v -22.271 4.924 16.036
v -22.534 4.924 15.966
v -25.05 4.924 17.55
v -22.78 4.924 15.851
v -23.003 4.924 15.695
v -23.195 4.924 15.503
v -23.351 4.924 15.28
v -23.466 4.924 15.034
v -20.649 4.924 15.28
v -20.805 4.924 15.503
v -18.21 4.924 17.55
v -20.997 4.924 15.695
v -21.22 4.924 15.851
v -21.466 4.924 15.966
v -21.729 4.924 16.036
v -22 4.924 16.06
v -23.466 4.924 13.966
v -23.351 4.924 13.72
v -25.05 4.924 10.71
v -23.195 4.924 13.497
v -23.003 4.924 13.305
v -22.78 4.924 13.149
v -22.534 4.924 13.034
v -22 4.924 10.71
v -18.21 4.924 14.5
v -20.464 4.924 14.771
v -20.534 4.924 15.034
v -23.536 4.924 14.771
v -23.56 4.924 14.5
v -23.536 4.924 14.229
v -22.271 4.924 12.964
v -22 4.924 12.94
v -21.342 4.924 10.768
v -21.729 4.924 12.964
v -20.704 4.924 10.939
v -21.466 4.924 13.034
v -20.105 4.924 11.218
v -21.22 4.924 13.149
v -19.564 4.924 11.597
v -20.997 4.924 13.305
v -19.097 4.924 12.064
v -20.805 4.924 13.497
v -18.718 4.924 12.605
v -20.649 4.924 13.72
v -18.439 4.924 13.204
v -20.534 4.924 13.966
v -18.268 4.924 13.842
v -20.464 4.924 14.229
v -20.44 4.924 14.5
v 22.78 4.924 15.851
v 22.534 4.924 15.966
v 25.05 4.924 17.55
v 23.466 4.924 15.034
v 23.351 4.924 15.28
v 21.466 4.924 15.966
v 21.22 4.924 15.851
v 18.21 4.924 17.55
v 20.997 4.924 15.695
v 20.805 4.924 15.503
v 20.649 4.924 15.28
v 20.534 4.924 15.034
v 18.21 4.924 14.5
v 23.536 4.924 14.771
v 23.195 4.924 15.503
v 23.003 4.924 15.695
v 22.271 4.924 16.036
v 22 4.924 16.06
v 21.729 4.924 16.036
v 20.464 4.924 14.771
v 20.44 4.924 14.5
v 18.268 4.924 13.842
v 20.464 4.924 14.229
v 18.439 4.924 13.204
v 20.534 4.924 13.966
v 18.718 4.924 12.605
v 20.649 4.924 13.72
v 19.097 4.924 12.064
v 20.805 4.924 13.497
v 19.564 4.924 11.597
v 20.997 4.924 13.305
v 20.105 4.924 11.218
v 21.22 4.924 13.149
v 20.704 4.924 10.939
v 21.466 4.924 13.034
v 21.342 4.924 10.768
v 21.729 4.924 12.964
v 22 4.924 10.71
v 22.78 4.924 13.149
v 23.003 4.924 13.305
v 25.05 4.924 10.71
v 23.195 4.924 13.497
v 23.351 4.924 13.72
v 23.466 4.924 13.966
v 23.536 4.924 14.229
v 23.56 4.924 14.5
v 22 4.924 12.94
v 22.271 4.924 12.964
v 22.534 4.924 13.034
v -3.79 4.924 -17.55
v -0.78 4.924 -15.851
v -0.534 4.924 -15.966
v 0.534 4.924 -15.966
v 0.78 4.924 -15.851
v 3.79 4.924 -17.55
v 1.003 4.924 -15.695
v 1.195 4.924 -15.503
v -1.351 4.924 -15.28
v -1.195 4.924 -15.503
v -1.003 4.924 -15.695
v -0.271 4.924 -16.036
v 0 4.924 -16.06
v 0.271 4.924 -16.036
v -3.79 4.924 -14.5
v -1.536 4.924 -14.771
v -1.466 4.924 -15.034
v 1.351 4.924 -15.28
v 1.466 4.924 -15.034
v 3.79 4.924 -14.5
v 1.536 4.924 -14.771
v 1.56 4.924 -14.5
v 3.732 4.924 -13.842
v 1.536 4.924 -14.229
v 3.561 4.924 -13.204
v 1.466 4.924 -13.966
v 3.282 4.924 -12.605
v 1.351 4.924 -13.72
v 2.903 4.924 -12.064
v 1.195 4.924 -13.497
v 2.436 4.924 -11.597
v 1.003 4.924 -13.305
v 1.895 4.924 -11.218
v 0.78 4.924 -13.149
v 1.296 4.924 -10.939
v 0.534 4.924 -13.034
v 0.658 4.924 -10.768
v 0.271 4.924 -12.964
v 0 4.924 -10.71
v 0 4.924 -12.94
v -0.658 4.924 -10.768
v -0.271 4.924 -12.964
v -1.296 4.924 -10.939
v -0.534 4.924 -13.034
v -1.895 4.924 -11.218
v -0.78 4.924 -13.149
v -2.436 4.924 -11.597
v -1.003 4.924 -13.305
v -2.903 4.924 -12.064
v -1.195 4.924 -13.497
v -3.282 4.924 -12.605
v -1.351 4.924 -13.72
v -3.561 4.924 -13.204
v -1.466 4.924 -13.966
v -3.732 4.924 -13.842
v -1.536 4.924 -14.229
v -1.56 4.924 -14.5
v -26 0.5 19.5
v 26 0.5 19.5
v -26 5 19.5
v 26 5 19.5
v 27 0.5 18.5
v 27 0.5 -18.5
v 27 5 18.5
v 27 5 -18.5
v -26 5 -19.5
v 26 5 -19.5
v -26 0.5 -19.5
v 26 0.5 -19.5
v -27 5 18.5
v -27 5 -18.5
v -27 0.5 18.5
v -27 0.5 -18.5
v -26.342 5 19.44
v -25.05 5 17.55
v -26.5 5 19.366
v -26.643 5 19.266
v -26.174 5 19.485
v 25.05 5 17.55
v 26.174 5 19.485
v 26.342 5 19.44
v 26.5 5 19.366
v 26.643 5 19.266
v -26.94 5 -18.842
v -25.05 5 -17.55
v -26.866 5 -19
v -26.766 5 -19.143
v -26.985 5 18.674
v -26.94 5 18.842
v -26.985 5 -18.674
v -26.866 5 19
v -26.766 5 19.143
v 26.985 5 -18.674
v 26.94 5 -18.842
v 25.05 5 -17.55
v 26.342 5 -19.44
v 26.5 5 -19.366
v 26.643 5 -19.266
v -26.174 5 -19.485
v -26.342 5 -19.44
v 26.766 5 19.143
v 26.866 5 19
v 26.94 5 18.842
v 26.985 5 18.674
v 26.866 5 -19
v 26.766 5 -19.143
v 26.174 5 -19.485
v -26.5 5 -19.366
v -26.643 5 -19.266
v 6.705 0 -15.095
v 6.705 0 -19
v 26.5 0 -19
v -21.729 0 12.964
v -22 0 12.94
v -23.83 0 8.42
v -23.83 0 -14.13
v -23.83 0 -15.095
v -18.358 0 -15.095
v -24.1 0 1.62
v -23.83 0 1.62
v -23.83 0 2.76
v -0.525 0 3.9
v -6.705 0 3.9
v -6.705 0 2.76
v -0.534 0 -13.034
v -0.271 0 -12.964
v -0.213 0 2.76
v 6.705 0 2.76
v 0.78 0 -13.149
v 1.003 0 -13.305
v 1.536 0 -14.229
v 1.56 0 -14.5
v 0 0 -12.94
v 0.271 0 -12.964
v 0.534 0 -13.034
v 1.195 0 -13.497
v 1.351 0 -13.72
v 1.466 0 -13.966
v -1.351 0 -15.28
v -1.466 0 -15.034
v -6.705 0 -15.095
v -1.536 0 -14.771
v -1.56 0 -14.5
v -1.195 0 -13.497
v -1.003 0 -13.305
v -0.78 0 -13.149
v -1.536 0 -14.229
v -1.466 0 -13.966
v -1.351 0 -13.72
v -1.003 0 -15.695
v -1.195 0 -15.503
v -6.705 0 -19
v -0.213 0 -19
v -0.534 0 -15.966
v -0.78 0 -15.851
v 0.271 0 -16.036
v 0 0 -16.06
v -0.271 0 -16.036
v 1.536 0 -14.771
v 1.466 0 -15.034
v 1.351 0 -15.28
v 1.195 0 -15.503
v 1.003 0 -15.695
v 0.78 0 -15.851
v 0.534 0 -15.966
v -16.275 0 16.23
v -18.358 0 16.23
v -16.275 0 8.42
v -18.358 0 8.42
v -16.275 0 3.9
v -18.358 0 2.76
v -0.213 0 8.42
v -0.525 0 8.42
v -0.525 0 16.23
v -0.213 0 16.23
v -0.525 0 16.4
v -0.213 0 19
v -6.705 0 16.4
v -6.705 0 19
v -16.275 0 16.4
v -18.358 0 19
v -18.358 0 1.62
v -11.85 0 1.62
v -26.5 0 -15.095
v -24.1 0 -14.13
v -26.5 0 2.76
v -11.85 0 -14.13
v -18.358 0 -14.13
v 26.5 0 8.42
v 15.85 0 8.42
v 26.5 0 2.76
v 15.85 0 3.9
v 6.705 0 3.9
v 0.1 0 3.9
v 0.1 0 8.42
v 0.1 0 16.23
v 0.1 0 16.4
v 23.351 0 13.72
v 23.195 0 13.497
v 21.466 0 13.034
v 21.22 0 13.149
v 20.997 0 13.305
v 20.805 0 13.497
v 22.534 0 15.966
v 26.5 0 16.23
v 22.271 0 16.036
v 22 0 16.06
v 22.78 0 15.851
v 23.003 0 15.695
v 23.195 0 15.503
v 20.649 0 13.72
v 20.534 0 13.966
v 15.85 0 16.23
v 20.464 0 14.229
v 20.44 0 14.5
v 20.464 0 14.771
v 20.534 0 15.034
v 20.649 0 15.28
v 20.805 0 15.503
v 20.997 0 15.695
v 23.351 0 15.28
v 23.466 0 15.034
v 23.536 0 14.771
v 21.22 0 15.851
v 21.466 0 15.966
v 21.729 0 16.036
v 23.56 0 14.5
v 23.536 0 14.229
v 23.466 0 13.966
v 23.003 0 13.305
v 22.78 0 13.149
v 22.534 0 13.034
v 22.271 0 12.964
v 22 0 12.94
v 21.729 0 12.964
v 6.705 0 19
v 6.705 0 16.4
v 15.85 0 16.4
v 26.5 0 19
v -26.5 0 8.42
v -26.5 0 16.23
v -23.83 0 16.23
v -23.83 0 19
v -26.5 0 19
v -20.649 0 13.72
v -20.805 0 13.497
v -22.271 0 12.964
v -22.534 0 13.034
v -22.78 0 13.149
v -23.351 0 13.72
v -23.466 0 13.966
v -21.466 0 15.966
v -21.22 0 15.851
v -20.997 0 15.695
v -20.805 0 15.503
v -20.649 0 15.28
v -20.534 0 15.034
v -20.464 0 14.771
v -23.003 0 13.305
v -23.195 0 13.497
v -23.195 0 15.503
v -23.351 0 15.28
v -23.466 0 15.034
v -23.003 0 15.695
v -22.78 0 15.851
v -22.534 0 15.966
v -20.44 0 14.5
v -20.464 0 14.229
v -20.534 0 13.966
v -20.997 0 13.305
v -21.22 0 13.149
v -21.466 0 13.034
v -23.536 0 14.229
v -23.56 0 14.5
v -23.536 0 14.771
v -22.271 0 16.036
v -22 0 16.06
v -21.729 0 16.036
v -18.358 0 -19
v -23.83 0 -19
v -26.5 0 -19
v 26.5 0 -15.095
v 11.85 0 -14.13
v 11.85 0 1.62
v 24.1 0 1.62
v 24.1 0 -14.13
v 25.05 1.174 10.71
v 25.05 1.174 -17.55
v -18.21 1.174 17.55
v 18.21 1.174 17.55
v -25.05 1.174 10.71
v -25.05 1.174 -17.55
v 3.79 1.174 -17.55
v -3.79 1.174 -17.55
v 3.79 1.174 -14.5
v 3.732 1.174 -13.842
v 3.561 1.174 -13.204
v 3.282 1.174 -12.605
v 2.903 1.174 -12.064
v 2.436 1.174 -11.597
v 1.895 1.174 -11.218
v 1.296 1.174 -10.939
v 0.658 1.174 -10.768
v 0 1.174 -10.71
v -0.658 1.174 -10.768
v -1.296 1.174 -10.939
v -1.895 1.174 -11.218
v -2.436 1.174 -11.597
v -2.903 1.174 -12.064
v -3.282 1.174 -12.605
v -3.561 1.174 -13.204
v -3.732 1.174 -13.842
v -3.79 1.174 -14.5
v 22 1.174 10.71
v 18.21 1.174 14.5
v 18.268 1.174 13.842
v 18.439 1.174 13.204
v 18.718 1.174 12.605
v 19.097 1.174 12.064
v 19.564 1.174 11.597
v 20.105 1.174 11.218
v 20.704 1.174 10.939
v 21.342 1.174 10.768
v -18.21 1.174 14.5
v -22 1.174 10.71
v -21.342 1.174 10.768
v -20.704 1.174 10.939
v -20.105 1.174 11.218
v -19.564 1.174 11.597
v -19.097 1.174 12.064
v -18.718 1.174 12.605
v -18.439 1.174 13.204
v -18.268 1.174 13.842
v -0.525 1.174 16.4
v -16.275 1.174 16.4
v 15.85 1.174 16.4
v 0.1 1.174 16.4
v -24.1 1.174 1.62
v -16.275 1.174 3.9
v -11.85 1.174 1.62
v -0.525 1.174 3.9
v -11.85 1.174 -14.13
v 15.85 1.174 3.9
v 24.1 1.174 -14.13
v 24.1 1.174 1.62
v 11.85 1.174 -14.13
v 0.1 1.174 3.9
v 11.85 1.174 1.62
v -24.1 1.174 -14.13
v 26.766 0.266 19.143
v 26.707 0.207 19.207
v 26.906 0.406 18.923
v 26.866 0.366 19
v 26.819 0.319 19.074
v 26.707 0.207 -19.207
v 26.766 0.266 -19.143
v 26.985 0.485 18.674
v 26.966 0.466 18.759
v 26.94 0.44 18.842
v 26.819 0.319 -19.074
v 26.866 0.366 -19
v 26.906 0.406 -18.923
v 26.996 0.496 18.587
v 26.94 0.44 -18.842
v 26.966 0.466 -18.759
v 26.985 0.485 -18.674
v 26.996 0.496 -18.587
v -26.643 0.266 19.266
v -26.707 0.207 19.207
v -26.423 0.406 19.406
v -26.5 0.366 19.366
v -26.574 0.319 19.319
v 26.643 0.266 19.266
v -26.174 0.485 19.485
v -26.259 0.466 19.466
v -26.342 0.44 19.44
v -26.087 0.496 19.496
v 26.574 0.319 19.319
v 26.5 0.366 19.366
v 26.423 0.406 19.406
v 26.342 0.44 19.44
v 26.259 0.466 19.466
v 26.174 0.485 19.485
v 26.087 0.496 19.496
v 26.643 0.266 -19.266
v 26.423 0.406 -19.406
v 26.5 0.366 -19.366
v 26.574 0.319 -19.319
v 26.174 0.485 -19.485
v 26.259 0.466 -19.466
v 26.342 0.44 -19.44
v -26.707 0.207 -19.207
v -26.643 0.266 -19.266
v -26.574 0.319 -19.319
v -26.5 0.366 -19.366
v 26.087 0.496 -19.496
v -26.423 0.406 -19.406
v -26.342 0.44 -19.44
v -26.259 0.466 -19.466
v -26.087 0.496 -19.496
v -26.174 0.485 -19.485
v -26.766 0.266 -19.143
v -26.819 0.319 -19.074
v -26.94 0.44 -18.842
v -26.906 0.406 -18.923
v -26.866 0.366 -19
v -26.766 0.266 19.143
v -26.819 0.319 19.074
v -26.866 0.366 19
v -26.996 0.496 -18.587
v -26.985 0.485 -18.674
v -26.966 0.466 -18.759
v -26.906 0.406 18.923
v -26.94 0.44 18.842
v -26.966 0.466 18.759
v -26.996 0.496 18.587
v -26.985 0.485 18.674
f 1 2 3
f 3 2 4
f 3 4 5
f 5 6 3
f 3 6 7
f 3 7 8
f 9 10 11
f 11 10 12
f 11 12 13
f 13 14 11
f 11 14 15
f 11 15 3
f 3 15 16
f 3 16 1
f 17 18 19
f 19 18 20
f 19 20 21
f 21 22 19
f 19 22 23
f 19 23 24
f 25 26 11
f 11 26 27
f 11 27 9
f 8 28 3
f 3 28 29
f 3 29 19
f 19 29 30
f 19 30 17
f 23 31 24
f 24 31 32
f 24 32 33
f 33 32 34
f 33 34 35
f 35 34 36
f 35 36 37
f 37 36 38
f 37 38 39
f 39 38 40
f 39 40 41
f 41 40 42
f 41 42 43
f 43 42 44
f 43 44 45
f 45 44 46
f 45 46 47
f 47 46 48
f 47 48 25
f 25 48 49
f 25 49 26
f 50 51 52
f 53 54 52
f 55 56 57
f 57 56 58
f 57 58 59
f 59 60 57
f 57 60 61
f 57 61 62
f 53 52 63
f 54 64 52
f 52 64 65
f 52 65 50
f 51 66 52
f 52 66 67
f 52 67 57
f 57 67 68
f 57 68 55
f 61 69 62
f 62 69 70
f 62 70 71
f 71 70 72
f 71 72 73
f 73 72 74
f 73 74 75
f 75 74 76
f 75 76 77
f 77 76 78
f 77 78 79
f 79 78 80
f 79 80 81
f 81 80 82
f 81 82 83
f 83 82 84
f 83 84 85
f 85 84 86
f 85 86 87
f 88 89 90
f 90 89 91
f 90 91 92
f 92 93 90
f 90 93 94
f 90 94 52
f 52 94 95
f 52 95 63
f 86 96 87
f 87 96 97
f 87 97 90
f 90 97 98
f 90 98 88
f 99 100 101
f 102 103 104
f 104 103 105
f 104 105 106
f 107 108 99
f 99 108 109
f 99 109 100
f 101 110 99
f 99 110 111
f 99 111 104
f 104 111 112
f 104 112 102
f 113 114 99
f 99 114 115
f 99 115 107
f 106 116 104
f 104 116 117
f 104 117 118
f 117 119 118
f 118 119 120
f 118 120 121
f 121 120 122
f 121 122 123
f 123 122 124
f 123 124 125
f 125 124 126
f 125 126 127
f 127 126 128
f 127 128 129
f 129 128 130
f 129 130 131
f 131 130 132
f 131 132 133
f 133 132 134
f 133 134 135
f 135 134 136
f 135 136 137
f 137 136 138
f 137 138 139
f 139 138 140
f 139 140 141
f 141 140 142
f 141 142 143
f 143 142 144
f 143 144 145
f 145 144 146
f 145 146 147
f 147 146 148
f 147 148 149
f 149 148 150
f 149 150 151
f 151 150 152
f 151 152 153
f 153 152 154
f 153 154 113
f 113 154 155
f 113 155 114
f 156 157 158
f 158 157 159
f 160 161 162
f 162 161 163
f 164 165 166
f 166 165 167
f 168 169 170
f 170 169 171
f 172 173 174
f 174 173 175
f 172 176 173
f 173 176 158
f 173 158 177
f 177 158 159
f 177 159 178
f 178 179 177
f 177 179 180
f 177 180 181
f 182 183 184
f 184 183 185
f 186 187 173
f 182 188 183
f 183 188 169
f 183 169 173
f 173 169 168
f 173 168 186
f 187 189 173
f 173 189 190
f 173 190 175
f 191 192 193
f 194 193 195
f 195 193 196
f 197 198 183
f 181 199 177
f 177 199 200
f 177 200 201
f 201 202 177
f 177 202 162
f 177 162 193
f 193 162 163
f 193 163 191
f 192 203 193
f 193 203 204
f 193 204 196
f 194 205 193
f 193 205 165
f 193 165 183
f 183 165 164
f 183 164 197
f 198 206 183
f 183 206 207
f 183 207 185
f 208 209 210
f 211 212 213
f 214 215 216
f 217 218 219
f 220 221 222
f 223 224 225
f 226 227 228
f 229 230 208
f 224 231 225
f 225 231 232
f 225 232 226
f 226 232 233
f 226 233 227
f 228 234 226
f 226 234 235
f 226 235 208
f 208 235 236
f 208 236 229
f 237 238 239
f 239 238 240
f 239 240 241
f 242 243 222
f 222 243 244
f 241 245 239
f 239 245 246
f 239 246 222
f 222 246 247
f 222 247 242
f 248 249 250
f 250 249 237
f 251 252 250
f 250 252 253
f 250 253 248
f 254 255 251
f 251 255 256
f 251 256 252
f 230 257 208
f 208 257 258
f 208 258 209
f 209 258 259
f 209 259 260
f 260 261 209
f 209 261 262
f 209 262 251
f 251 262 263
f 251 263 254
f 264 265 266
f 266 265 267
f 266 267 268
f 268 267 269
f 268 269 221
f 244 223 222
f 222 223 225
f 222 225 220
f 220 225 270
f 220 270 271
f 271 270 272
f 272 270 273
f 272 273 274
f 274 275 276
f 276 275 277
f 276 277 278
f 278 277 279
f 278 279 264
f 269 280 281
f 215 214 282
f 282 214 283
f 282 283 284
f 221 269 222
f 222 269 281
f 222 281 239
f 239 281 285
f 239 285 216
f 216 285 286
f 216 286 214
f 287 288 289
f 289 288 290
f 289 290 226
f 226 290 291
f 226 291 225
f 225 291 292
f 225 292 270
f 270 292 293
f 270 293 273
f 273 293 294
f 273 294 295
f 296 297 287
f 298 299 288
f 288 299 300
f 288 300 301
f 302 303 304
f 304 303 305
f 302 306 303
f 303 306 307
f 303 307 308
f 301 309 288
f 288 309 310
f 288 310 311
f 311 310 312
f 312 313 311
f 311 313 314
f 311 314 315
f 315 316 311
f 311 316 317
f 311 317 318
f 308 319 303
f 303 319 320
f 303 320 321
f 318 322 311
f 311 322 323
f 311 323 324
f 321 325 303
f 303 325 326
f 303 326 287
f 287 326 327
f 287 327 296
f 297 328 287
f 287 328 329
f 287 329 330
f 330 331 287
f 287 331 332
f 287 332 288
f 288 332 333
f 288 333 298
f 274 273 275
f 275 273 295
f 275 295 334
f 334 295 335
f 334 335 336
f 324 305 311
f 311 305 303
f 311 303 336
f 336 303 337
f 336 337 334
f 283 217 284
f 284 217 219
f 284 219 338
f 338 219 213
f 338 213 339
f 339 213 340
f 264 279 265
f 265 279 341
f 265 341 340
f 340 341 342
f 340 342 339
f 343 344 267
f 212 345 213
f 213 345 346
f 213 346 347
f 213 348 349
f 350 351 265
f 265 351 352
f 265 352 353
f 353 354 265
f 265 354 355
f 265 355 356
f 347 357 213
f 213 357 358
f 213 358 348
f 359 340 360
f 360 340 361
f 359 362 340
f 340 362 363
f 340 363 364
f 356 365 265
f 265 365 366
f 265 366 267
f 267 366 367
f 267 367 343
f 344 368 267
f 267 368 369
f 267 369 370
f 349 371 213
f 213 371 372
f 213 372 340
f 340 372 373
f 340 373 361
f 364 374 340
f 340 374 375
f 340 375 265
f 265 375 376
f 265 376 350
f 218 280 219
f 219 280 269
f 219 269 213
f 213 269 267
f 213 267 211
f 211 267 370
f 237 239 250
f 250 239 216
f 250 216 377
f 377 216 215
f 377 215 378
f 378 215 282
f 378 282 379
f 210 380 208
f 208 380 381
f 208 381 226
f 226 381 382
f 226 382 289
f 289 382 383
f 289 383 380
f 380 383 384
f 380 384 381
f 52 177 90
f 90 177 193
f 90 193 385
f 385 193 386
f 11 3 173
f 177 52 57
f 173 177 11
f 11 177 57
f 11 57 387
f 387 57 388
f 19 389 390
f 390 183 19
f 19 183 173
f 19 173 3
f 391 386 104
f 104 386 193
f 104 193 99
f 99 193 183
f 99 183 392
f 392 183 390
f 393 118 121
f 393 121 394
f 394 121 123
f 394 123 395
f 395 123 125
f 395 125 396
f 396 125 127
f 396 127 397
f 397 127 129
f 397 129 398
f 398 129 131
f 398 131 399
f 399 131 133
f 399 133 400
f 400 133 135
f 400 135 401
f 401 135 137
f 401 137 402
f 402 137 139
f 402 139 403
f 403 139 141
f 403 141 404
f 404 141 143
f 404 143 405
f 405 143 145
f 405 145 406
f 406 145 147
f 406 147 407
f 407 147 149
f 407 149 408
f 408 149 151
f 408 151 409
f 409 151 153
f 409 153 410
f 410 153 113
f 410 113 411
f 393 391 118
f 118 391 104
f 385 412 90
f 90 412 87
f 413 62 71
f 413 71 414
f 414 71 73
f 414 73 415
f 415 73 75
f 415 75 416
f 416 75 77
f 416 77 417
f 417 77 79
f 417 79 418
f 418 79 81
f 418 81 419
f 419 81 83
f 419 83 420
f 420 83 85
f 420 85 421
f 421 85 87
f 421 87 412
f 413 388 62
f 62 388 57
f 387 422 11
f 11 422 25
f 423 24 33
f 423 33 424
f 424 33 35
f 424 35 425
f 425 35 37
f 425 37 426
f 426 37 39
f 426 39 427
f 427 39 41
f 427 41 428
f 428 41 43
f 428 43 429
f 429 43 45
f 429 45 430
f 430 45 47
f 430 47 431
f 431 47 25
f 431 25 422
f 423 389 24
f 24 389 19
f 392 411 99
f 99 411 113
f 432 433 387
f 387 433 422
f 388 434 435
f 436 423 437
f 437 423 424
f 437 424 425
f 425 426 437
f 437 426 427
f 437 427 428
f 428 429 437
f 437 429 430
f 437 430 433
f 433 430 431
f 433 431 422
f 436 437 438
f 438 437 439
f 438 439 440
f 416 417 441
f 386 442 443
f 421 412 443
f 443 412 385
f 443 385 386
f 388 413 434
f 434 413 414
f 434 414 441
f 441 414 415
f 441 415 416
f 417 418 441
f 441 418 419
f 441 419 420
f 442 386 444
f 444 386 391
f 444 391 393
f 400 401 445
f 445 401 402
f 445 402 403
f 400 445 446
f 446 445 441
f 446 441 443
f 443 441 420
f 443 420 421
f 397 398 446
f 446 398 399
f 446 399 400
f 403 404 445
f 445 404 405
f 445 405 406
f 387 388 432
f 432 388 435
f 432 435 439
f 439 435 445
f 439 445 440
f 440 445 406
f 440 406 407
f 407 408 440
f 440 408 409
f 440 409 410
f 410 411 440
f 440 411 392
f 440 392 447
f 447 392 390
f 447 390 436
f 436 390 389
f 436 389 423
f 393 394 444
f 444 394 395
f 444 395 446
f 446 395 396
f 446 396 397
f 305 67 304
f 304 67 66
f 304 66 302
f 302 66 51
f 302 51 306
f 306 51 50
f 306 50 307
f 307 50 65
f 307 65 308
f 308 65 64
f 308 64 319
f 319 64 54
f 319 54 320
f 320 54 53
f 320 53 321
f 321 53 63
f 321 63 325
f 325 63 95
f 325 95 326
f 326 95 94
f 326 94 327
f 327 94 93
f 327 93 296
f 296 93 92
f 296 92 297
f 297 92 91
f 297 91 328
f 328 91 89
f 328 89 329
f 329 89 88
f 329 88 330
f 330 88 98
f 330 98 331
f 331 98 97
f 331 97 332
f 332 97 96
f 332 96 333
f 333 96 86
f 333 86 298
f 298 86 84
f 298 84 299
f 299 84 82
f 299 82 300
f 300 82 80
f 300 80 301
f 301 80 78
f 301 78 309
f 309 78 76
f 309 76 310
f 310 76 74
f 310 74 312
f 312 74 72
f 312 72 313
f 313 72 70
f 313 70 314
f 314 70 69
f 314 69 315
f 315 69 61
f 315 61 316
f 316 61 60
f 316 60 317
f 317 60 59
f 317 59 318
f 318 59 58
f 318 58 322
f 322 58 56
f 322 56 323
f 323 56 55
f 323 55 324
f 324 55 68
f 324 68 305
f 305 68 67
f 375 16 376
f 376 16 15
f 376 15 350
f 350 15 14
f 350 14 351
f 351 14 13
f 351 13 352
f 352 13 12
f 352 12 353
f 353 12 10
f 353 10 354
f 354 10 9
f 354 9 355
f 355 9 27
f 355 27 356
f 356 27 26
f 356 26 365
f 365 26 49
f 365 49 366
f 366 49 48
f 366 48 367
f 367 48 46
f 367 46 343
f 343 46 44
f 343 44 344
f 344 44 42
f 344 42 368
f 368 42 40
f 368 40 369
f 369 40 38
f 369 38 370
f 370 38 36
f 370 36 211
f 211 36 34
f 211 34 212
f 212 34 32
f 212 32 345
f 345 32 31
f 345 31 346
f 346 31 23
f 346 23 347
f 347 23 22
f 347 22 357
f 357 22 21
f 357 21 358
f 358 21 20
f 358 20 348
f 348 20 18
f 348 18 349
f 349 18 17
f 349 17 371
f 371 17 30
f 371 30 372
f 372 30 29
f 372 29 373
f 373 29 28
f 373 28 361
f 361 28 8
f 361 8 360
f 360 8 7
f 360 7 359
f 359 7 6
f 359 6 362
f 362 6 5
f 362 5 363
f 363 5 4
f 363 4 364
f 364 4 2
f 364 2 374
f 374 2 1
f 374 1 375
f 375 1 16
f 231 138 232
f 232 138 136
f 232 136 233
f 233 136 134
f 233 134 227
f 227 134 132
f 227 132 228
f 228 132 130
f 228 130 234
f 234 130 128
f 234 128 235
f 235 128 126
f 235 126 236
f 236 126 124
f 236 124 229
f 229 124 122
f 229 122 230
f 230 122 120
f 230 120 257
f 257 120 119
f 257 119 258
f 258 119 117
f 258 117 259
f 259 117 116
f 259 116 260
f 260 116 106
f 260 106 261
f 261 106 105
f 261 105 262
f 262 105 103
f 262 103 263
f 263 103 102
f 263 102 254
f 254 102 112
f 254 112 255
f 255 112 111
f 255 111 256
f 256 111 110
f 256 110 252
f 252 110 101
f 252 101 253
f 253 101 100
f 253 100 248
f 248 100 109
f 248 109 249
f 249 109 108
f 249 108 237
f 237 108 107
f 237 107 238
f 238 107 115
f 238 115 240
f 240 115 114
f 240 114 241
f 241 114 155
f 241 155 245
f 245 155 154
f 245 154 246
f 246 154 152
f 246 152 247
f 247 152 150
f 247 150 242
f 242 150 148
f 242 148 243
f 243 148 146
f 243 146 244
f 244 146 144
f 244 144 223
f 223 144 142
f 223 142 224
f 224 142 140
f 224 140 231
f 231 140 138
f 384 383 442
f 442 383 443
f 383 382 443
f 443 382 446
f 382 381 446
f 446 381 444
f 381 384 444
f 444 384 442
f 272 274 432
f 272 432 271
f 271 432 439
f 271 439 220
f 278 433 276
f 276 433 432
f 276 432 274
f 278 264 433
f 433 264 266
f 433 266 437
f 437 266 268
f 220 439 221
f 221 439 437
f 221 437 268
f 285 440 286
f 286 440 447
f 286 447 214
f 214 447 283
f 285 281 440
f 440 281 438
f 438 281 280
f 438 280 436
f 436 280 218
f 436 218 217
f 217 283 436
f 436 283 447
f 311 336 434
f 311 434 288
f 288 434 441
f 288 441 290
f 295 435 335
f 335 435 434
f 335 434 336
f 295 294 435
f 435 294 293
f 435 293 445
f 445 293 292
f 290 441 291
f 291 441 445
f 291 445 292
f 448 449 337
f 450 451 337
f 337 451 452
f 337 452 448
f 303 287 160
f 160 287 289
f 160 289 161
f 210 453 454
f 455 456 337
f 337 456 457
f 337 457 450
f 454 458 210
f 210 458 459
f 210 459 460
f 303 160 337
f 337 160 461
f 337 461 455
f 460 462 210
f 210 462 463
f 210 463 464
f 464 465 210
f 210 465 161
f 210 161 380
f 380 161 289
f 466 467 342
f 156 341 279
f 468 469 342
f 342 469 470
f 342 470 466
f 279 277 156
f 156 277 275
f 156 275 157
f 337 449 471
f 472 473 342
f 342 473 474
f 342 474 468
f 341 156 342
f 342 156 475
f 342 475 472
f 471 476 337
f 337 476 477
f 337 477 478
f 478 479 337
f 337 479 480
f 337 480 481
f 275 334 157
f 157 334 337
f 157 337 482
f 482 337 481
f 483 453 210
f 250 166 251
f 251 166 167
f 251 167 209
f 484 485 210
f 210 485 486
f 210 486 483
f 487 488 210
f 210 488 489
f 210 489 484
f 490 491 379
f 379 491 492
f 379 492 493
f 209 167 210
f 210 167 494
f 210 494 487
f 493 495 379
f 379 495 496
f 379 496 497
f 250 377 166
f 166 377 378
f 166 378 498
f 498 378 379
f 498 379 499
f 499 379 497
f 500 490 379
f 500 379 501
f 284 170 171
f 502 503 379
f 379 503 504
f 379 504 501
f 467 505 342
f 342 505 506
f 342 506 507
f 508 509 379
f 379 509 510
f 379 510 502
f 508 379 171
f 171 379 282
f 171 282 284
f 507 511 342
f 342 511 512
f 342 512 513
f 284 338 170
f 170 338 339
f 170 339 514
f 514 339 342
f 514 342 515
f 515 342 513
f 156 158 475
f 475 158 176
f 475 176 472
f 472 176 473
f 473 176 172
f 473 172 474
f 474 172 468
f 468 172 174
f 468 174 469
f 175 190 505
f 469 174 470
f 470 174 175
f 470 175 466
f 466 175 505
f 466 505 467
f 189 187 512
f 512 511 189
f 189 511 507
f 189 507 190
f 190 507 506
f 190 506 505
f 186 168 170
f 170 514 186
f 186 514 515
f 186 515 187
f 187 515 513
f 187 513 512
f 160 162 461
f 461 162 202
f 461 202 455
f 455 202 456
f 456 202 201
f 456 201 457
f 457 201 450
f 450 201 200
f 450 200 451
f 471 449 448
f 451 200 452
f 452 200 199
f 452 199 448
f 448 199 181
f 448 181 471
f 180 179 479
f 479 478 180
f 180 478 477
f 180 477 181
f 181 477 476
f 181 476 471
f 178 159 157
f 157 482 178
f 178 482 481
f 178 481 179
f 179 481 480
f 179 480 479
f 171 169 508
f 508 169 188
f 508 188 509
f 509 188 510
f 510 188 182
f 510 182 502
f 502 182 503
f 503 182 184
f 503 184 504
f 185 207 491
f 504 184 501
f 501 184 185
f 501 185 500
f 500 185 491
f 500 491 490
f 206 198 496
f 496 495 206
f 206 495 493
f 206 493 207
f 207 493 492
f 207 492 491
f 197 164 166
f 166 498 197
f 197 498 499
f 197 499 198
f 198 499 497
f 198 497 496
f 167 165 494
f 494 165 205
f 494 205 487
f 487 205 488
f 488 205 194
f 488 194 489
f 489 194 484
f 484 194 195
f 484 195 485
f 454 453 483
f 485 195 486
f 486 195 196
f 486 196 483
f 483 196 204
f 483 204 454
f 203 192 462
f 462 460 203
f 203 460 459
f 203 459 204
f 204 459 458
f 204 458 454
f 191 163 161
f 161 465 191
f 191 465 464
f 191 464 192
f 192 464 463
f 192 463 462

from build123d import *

# Parameters (mm, degrees)
SKETCH1_W           = 54
SKETCH1_H           = 39
BOSS_EXTRUDE1_DEPTH = 5
SKETCH2_W           = 50.1
SKETCH2_H           = 35.1
CUT_EXTRUDE1_DEPTH  = 0.0762
CUT_EXTRUDE2_DEPTH  = 3.75
SKETCH4_R           = 1.56
CUT_EXTRUDE3_DEPTH  = 34.667399758
SKETCH6_W           = 12.25
SKETCH6_H           = 15.75
SKETCH6_W_2         = 15.75
SKETCH6_H_2         = 12.5
CUT_EXTRUDE5_DEPTH  = 34.524465789
CHAMFER1_SIZE       = 0.5
FILLET1_R           = 1


with BuildPart() as part:
    # Sketch1 → Boss-Extrude1 (new body)
    with BuildSketch(Plane(origin=(0, 0, 0), x_dir=(1, 0, 0), z_dir=(0, 1, 0))):
        Rectangle(SKETCH1_W, SKETCH1_H)
    extrude(amount=BOSS_EXTRUDE1_DEPTH)

    # Sketch2 → Cut-Extrude1 (cut)
    with BuildSketch(Plane(origin=(0, 5, 0), x_dir=(1, 0, 0), z_dir=(0, 1, 0))):
        Rectangle(SKETCH2_W, SKETCH2_H)
    extrude(amount=-CUT_EXTRUDE1_DEPTH, mode=Mode.SUBTRACT)

    # Sketch3 → Cut-Extrude2 (cut)
    with BuildSketch(Plane(origin=(0, 4.9238, 0), x_dir=(1, 0, 0), z_dir=(0, 1, 0))):
        with BuildLine():
            Line((-3.79, 14.5), (-3.79, 17.55))
            Line((-3.79, 17.55), (-25.05, 17.55))
            Line((-25.05, 17.55), (-25.05, -10.71))
            Line((-25.05, -10.71), (-22, -10.71))
            ThreePointArc((-22, -10.71), (-19.320065299, -11.820065299), (-18.21, -14.5))
            Line((-18.21, -14.5), (-18.21, -17.55))
            Line((-18.21, -17.55), (18.21, -17.55))
            Line((18.21, -17.55), (18.21, -14.5))
            ThreePointArc((18.21, -14.5), (19.320065299, -11.820065299), (22, -10.71))
            Line((22, -10.71), (25.05, -10.71))
            Line((25.05, -10.71), (25.05, 17.55))
            Line((25.05, 17.55), (3.79, 17.55))
            Line((3.79, 17.55), (3.79, 14.5))
            ThreePointArc((3.79, 14.5), (0, 10.71), (-3.79, 14.5))
        make_face()
    extrude(amount=-CUT_EXTRUDE2_DEPTH, mode=Mode.SUBTRACT)

    # Sketch4 → Cut-Extrude3 (cut, through all)
    with BuildSketch(Plane(origin=(0, 4.9238, 0), x_dir=(1, 0, 0), z_dir=(0, 1, 0))):
        with Locations(Location((0, 14.5, 0), (0, 0, 270))):
            Circle(SKETCH4_R)
        with Locations(Location((-22, -14.5, 0), (0, 0, 270))):
            Circle(SKETCH4_R)
        with Locations(Location((22, -14.5, 0), (0, 0, 90))):
            Circle(SKETCH4_R)
    extrude(amount=-CUT_EXTRUDE3_DEPTH, mode=Mode.SUBTRACT)

    # Sketch6 → Cut-Extrude5 (cut, through all)
    with BuildSketch(Plane(origin=(0, 1.1738, 0), x_dir=(1, 0, 0), z_dir=(0, 1, 0))):
        with Locations((17.975, 6.255)):
            Rectangle(SKETCH6_W, SKETCH6_H)
        with Locations((7.975, -10.15)):
            Rectangle(SKETCH6_W_2, SKETCH6_H_2)
        with Locations((-17.975, 6.255)):
            Rectangle(SKETCH6_W, SKETCH6_H)
        with Locations((-8.4, -10.15)):
            Rectangle(SKETCH6_W_2, SKETCH6_H_2)
    extrude(amount=-CUT_EXTRUDE5_DEPTH, mode=Mode.SUBTRACT)

    # Chamfer1
    chamfer1_edges = [part.edges().sort_by_distance(p)[0] for p in [
        (-27, 0, 0),
        (0, 0, -19.5),
        (27, 0, 0),
        (0, 0, 19.5),
    ]]
    chamfer(chamfer1_edges, length=CHAMFER1_SIZE)

    # Fillet1
    fillet1_edges = [part.edges().sort_by_distance(p)[0] for p in [
        (-27, 2.75, 19.5),
        (-27, 2.75, -19.5),
        (27, 2.75, -19.5),
        (27, 2.75, 19.5),
    ]]
    fillet(fillet1_edges, radius=FILLET1_R)


solid = part.part
